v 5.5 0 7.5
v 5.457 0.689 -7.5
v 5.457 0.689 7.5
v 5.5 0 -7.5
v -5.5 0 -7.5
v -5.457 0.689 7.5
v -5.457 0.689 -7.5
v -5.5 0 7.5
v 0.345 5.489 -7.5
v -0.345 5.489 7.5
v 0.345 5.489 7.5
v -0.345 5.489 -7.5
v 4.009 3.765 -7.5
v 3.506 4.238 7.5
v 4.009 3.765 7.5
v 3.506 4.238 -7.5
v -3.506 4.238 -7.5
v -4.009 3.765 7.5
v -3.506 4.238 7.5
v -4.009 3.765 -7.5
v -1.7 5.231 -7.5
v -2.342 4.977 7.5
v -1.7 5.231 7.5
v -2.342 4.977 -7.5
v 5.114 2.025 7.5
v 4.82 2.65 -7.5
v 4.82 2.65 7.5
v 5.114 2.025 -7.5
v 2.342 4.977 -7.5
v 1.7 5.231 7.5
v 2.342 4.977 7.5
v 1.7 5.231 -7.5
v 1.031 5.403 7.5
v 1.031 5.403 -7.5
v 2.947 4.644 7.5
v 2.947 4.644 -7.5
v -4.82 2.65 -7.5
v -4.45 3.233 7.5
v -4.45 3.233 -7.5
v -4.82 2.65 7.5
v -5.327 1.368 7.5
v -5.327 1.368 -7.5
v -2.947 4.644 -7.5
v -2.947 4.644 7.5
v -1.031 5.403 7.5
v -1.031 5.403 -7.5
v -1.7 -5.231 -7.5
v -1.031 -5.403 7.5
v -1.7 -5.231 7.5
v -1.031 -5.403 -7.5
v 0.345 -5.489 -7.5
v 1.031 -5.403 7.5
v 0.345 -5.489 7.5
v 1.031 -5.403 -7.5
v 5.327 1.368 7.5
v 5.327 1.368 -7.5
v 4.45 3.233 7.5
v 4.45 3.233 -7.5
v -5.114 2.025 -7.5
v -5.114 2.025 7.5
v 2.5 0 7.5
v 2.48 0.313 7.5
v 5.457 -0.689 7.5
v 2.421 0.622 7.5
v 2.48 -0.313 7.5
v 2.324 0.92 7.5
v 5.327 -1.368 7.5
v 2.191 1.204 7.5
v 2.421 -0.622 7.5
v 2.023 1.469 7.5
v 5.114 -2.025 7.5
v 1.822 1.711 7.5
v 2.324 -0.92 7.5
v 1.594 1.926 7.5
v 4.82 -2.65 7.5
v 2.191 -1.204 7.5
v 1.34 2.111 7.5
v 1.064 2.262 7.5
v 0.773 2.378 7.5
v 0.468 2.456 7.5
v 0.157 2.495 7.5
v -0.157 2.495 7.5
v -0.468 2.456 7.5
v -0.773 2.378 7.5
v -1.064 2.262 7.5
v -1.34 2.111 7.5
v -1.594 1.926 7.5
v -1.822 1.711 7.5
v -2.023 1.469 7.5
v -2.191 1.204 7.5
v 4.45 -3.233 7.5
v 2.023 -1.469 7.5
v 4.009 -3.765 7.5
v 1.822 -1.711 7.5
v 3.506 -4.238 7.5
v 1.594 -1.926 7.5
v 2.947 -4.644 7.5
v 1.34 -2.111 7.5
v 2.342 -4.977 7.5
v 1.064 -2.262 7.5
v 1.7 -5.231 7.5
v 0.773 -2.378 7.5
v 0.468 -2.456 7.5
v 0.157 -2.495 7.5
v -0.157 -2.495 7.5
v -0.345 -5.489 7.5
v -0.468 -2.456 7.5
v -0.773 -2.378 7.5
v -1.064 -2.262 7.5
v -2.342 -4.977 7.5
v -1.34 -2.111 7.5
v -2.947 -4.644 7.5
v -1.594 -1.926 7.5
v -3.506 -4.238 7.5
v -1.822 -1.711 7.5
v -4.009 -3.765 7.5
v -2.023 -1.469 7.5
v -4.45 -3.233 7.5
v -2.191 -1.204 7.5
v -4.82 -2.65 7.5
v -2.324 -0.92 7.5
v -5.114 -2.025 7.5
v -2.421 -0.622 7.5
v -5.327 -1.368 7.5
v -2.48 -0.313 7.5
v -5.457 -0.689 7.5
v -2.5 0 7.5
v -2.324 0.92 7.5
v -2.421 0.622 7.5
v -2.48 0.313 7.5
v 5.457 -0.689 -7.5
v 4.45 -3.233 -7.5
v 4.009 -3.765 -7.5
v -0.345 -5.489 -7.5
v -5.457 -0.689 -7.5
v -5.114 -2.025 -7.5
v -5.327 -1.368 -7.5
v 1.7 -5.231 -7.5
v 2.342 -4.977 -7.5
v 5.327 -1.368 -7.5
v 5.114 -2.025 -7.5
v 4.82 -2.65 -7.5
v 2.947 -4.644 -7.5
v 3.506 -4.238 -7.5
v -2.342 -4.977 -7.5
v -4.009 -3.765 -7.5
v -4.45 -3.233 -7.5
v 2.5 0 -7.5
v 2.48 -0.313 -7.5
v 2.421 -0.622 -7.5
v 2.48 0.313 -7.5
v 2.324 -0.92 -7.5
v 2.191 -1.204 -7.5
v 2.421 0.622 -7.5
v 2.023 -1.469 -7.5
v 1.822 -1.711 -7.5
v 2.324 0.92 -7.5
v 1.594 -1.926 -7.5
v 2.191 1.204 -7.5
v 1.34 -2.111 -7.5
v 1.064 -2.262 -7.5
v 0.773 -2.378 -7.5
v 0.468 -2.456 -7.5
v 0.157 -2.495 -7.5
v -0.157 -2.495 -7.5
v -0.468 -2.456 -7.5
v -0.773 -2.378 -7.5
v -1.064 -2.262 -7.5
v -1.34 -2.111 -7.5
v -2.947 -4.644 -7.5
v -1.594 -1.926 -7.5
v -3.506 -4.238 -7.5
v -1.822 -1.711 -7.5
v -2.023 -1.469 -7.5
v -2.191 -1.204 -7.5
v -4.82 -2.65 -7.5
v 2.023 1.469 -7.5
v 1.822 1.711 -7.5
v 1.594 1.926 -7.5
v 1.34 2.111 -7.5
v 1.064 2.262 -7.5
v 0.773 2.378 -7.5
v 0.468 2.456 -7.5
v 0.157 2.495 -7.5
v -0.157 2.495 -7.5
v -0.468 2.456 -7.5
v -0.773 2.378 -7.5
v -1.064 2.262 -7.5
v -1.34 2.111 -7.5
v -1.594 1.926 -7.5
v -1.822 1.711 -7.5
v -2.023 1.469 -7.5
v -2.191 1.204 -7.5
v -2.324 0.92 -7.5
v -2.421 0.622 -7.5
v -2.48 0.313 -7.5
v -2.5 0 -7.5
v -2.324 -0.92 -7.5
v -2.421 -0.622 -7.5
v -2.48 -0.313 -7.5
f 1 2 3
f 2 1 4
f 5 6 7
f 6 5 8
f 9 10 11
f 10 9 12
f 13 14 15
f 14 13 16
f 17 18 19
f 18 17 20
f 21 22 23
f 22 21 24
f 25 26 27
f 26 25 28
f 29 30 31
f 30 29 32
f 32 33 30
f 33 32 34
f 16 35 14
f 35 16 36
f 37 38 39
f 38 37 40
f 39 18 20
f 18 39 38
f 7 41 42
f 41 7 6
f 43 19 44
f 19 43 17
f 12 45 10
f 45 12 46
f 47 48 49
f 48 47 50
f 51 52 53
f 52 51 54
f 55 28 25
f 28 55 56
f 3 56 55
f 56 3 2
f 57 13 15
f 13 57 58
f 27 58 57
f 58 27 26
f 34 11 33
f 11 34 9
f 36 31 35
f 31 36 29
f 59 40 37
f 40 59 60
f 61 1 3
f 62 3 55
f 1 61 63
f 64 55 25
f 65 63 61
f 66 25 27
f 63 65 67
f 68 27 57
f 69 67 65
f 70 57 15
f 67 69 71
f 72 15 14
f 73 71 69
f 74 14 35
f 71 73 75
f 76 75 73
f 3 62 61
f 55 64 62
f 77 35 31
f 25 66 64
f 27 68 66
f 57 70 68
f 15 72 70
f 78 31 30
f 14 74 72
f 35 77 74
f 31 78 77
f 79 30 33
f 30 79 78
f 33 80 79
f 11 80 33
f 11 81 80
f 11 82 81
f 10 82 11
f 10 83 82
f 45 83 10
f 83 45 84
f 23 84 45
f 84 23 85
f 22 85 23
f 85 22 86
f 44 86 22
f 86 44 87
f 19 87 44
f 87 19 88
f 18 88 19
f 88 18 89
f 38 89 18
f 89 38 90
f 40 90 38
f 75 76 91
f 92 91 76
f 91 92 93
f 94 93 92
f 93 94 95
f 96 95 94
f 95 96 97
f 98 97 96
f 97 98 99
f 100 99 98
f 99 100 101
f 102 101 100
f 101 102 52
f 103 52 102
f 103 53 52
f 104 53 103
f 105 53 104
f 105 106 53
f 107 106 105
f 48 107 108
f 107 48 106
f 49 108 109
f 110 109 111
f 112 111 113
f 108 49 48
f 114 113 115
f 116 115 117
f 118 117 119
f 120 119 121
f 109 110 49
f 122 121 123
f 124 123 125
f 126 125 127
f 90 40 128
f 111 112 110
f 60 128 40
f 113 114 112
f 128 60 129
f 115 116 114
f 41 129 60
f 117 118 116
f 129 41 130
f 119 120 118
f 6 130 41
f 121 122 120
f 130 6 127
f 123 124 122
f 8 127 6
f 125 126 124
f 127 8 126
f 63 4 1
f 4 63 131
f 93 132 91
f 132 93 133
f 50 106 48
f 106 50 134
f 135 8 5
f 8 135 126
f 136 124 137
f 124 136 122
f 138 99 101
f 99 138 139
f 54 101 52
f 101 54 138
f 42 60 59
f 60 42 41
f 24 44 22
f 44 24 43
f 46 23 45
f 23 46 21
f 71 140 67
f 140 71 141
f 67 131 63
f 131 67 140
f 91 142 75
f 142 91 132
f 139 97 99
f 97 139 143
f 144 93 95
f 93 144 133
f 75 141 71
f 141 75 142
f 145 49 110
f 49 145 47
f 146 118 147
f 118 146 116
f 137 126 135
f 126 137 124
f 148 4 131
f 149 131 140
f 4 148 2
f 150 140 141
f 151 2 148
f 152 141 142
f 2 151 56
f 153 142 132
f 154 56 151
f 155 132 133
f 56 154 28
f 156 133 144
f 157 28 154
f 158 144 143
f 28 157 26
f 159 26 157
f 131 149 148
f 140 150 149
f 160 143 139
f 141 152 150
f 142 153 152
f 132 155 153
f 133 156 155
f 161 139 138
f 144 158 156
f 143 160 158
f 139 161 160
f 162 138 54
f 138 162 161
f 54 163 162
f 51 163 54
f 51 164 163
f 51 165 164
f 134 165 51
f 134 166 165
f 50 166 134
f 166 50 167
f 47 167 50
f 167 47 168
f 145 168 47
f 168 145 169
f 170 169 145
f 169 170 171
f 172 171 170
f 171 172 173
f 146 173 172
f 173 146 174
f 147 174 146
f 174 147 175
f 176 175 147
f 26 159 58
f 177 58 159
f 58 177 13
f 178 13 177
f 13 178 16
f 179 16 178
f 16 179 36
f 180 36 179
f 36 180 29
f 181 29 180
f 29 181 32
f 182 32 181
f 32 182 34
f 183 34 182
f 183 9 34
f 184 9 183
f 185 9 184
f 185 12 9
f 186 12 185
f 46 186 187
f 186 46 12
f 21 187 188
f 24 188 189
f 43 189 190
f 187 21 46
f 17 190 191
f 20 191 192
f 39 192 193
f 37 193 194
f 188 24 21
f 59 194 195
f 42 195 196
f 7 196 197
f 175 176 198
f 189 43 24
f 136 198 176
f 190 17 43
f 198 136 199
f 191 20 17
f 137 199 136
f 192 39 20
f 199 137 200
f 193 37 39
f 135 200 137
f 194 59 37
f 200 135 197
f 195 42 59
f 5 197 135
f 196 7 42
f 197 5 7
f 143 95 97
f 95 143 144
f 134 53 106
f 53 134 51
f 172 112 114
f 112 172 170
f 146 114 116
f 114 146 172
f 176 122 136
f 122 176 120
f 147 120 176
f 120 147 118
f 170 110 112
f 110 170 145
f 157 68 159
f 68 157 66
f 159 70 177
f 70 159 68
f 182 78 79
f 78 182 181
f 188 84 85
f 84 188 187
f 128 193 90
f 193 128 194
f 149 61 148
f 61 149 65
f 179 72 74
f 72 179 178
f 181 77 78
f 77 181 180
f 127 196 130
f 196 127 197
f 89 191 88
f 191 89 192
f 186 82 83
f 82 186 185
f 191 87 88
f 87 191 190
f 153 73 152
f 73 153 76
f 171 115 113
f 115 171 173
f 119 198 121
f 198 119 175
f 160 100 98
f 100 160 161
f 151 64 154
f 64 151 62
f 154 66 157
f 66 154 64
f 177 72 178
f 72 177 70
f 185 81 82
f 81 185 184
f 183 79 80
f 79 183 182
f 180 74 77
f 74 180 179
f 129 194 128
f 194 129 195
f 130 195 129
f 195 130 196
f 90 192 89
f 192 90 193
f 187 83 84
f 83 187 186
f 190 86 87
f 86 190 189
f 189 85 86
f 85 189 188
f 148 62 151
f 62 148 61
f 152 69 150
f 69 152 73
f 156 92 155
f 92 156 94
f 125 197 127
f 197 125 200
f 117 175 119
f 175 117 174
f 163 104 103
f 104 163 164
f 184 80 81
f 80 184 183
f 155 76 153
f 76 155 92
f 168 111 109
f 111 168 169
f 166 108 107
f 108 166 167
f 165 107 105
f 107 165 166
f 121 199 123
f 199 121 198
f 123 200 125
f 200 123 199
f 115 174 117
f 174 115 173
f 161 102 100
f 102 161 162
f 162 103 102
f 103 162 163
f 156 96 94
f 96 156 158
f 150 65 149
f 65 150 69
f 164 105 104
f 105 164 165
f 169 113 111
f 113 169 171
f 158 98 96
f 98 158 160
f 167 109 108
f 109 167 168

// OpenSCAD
$fn = 50;


difference() {
	union() {
		translate(v = [0, 0, -7.5000000000]) {
			cylinder(h = 15, r = 5.5000000000);
		}
	}
	union() {
		translate(v = [0, 0, -100.0000000000]) {
			cylinder(h = 200, r = 2.5000000000);
		}
	}
}
